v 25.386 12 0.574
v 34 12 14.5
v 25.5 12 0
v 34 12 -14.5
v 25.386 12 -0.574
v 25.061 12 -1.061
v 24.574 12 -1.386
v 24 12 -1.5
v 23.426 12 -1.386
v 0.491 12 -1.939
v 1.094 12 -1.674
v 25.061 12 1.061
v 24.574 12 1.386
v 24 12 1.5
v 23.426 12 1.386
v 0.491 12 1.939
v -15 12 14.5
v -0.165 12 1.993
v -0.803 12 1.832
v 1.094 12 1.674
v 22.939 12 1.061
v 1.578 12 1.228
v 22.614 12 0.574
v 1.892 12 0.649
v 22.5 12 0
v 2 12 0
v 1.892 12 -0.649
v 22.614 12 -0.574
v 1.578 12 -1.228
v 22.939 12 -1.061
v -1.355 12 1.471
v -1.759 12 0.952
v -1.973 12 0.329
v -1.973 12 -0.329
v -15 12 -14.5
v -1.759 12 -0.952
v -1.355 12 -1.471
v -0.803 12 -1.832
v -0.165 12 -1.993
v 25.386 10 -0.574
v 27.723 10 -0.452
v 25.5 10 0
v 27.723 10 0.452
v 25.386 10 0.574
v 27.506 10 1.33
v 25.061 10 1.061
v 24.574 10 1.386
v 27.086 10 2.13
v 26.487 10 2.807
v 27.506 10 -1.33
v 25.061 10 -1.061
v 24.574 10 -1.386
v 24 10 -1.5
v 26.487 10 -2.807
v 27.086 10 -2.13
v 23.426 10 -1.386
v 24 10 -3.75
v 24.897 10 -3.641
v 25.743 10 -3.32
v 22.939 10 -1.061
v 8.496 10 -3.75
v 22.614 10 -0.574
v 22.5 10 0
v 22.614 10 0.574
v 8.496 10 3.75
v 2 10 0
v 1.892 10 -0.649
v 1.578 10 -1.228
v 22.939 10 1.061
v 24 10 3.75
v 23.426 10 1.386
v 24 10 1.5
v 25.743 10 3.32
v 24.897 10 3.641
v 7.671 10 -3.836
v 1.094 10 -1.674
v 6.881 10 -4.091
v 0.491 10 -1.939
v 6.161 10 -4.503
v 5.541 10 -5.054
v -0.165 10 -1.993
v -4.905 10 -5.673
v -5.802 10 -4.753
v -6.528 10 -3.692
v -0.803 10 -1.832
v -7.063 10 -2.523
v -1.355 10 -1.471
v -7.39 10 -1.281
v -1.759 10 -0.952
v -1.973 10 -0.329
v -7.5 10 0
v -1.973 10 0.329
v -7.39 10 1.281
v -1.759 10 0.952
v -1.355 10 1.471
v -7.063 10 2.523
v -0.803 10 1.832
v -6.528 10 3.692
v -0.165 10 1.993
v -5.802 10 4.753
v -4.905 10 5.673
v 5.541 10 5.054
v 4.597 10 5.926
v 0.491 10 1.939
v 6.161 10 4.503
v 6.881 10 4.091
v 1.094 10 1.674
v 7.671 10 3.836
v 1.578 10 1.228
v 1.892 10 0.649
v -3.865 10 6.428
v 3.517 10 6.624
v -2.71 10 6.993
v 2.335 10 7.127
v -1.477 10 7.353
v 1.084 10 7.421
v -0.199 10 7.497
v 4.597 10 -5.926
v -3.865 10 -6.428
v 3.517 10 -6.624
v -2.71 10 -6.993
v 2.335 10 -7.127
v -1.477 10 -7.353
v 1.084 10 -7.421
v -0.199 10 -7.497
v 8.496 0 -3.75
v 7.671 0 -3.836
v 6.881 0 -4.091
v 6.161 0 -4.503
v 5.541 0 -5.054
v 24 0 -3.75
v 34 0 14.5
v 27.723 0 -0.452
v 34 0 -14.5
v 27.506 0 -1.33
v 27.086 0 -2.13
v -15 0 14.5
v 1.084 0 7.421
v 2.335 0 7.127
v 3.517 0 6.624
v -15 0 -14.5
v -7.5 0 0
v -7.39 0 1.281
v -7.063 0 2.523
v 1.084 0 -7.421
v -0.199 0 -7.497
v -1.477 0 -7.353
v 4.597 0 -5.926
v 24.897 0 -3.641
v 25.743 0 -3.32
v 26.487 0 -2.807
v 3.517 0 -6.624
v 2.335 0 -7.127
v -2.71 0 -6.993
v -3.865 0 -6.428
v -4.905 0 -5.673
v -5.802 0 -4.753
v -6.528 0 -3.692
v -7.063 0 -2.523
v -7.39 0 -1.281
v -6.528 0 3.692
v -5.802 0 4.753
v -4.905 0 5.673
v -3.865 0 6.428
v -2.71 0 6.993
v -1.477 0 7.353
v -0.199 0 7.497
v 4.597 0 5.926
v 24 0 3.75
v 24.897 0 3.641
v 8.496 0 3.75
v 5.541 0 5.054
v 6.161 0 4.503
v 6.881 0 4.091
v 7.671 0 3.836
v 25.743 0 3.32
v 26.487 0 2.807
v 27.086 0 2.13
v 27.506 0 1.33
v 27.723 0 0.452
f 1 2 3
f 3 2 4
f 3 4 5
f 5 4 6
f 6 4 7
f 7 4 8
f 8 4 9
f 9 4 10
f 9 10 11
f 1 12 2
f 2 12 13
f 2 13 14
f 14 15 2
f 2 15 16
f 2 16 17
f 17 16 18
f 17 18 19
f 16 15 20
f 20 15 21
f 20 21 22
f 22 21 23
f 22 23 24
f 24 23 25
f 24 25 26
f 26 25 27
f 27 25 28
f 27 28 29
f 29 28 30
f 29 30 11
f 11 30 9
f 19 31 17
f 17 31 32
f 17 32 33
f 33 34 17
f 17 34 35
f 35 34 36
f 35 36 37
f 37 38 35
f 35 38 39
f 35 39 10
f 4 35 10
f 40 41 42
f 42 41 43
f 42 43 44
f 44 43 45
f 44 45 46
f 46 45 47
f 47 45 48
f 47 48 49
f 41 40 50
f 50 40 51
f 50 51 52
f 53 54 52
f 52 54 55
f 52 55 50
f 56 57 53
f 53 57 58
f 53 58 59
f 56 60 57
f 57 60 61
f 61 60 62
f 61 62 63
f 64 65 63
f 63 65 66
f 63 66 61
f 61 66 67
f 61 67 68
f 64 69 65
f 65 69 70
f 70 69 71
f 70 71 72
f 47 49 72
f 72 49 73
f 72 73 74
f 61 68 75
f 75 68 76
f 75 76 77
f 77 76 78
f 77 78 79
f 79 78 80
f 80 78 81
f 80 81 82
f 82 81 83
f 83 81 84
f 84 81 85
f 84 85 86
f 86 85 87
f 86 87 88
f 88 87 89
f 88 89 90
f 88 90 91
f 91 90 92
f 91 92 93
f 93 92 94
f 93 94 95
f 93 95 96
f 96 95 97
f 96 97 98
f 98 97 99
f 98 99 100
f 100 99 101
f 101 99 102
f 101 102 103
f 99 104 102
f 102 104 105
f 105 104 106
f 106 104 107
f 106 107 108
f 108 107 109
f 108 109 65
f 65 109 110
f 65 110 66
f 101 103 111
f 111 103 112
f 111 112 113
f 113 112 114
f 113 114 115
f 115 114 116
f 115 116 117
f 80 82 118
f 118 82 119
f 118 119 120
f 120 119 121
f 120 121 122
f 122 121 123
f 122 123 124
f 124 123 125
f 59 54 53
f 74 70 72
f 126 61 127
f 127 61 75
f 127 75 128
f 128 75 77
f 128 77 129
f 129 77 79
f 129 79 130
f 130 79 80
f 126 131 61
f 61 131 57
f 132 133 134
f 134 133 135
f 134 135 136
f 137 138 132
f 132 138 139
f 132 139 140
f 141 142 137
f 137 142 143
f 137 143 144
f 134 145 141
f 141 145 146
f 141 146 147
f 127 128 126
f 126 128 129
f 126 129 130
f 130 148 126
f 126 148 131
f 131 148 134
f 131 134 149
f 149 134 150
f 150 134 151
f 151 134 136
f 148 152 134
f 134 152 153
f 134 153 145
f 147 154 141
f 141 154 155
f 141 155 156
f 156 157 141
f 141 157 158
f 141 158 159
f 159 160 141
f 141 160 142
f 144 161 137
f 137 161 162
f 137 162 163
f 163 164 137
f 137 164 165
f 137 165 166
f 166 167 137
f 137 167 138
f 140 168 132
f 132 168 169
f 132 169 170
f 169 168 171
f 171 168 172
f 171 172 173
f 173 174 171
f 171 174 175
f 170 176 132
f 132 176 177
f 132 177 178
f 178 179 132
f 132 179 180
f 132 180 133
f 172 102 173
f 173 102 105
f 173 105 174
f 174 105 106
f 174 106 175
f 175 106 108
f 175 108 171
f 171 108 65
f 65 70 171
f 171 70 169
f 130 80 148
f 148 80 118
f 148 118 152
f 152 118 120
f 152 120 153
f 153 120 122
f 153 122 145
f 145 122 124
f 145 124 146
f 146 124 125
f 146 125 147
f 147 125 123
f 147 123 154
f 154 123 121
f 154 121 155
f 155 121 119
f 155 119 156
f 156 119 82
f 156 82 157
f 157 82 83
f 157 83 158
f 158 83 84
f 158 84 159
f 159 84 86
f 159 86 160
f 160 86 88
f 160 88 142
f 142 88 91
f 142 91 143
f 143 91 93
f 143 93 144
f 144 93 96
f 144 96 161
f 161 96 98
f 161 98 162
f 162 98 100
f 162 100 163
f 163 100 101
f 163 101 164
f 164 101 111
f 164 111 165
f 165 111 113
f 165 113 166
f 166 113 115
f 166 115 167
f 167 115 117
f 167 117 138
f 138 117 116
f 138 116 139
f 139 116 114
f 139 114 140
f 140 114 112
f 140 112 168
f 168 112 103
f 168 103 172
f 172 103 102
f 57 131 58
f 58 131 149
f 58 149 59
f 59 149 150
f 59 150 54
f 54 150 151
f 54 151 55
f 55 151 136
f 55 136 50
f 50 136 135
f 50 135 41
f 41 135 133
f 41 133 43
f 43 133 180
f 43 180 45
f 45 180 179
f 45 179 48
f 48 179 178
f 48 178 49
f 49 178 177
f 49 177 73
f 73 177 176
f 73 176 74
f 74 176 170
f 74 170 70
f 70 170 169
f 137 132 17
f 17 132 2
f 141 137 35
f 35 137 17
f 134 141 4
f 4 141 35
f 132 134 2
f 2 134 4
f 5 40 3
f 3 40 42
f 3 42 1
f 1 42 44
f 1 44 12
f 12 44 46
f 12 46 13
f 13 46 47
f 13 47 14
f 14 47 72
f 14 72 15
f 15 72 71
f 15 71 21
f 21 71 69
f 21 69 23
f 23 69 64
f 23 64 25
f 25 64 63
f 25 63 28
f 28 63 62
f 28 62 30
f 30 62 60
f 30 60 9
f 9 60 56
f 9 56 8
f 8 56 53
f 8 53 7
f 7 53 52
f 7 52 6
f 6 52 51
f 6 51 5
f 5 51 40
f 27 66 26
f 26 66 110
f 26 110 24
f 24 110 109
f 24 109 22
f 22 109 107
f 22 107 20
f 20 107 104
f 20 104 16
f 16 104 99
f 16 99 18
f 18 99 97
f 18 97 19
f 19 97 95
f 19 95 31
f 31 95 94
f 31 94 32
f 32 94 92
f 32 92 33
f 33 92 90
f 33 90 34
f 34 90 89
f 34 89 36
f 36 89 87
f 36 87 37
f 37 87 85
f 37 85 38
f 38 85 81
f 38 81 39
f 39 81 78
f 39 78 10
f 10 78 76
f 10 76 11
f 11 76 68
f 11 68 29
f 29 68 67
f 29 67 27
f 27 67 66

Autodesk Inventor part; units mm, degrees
ref_plane "YZ Plane" through (0, 0, 0) normal (1, 0, 0) x (0, 1, 0)
ref_plane "XZ Plane" through (0, 0, 0) normal (0, 1, 0) x (-1, 0, 0)
ref_plane "XY Plane" through (0, 0, 0) normal (0, 0, 1) x (1, 0, 0)
sketch "Sketch1" plane through (0, 0, 0) normal (0, 1, 0) x (-1, 0, 0)
  circle A0 centre (0, 0) radius 7.5
  line L0 (0, 3.75) -> (-24, 3.75)
  line L1 (-24, 3.75) -> (-24, -3.75)
  line L2 (-24, -3.75) -> (0, -3.75)
  line L3 (0, -3.75) -> (0, 3.75)
  circle A1 centre (-24, 0) radius 3.75
  line L4 (15, 14.5) -> (-34, 14.5)
  line L5 (-34, 14.5) -> (-34, -14.5)
  line L6 (-34, -14.5) -> (15, -14.5)
  line L7 (15, -14.5) -> (15, 14.5)
  point P0 (-6.4952, 3.75)
  point P1 (-6.4952, -3.75)
  dimension "d0" = 15
  dimension "d1" = 24
  dimension "d2" = 7.5
  dimension "d3" = 3.75
  dimension "d4" = 7
  dimension "d5" = 7
  dimension "d6" = 15
  dimension "d7" = 10
extrude "Extrusion1" add sketch "Sketch1" along normal blind 10
fillet "Fillet1" radius 4 2 edges at (6.4952, 5, 3.75) (6.4952, 5, -3.75)
sketch "Sketch2" plane through (0, 10, 0) normal (0, 1, 0) x (1, 0, 0)
  line L0 (-15, 14.5) -> (-15, -14.5) projected
  line L1 (34, -14.5) -> (34, 14.5) projected
  line L2 (-15, -14.5) -> (34, -14.5)
  line L3 (34, -14.5) -> (34, 14.5)
  line L4 (34, 14.5) -> (-15, 14.5)
  line L5 (-15, 14.5) -> (-15, -14.5)
  point P0 (0, 0)
extrude "Extrusion2" add sketch "Sketch2" along normal blind 2
sketch "Sketch3" plane through (0, 10, 0) normal (0, -1, 0) x (1, 0, 0)
  circle A0 centre (0, 0) radius 2
  arc A1 (24, -3.75) -> (24, 3.75) centre (24, 0) ccw projected
  circle A2 centre (24, 0) radius 1.5
  dimension "d13" = 4
  dimension "d14" = 3
extrude "Extrusion3" cut sketch "Sketch3" against normal blind 2
properties part number "servoTest"
